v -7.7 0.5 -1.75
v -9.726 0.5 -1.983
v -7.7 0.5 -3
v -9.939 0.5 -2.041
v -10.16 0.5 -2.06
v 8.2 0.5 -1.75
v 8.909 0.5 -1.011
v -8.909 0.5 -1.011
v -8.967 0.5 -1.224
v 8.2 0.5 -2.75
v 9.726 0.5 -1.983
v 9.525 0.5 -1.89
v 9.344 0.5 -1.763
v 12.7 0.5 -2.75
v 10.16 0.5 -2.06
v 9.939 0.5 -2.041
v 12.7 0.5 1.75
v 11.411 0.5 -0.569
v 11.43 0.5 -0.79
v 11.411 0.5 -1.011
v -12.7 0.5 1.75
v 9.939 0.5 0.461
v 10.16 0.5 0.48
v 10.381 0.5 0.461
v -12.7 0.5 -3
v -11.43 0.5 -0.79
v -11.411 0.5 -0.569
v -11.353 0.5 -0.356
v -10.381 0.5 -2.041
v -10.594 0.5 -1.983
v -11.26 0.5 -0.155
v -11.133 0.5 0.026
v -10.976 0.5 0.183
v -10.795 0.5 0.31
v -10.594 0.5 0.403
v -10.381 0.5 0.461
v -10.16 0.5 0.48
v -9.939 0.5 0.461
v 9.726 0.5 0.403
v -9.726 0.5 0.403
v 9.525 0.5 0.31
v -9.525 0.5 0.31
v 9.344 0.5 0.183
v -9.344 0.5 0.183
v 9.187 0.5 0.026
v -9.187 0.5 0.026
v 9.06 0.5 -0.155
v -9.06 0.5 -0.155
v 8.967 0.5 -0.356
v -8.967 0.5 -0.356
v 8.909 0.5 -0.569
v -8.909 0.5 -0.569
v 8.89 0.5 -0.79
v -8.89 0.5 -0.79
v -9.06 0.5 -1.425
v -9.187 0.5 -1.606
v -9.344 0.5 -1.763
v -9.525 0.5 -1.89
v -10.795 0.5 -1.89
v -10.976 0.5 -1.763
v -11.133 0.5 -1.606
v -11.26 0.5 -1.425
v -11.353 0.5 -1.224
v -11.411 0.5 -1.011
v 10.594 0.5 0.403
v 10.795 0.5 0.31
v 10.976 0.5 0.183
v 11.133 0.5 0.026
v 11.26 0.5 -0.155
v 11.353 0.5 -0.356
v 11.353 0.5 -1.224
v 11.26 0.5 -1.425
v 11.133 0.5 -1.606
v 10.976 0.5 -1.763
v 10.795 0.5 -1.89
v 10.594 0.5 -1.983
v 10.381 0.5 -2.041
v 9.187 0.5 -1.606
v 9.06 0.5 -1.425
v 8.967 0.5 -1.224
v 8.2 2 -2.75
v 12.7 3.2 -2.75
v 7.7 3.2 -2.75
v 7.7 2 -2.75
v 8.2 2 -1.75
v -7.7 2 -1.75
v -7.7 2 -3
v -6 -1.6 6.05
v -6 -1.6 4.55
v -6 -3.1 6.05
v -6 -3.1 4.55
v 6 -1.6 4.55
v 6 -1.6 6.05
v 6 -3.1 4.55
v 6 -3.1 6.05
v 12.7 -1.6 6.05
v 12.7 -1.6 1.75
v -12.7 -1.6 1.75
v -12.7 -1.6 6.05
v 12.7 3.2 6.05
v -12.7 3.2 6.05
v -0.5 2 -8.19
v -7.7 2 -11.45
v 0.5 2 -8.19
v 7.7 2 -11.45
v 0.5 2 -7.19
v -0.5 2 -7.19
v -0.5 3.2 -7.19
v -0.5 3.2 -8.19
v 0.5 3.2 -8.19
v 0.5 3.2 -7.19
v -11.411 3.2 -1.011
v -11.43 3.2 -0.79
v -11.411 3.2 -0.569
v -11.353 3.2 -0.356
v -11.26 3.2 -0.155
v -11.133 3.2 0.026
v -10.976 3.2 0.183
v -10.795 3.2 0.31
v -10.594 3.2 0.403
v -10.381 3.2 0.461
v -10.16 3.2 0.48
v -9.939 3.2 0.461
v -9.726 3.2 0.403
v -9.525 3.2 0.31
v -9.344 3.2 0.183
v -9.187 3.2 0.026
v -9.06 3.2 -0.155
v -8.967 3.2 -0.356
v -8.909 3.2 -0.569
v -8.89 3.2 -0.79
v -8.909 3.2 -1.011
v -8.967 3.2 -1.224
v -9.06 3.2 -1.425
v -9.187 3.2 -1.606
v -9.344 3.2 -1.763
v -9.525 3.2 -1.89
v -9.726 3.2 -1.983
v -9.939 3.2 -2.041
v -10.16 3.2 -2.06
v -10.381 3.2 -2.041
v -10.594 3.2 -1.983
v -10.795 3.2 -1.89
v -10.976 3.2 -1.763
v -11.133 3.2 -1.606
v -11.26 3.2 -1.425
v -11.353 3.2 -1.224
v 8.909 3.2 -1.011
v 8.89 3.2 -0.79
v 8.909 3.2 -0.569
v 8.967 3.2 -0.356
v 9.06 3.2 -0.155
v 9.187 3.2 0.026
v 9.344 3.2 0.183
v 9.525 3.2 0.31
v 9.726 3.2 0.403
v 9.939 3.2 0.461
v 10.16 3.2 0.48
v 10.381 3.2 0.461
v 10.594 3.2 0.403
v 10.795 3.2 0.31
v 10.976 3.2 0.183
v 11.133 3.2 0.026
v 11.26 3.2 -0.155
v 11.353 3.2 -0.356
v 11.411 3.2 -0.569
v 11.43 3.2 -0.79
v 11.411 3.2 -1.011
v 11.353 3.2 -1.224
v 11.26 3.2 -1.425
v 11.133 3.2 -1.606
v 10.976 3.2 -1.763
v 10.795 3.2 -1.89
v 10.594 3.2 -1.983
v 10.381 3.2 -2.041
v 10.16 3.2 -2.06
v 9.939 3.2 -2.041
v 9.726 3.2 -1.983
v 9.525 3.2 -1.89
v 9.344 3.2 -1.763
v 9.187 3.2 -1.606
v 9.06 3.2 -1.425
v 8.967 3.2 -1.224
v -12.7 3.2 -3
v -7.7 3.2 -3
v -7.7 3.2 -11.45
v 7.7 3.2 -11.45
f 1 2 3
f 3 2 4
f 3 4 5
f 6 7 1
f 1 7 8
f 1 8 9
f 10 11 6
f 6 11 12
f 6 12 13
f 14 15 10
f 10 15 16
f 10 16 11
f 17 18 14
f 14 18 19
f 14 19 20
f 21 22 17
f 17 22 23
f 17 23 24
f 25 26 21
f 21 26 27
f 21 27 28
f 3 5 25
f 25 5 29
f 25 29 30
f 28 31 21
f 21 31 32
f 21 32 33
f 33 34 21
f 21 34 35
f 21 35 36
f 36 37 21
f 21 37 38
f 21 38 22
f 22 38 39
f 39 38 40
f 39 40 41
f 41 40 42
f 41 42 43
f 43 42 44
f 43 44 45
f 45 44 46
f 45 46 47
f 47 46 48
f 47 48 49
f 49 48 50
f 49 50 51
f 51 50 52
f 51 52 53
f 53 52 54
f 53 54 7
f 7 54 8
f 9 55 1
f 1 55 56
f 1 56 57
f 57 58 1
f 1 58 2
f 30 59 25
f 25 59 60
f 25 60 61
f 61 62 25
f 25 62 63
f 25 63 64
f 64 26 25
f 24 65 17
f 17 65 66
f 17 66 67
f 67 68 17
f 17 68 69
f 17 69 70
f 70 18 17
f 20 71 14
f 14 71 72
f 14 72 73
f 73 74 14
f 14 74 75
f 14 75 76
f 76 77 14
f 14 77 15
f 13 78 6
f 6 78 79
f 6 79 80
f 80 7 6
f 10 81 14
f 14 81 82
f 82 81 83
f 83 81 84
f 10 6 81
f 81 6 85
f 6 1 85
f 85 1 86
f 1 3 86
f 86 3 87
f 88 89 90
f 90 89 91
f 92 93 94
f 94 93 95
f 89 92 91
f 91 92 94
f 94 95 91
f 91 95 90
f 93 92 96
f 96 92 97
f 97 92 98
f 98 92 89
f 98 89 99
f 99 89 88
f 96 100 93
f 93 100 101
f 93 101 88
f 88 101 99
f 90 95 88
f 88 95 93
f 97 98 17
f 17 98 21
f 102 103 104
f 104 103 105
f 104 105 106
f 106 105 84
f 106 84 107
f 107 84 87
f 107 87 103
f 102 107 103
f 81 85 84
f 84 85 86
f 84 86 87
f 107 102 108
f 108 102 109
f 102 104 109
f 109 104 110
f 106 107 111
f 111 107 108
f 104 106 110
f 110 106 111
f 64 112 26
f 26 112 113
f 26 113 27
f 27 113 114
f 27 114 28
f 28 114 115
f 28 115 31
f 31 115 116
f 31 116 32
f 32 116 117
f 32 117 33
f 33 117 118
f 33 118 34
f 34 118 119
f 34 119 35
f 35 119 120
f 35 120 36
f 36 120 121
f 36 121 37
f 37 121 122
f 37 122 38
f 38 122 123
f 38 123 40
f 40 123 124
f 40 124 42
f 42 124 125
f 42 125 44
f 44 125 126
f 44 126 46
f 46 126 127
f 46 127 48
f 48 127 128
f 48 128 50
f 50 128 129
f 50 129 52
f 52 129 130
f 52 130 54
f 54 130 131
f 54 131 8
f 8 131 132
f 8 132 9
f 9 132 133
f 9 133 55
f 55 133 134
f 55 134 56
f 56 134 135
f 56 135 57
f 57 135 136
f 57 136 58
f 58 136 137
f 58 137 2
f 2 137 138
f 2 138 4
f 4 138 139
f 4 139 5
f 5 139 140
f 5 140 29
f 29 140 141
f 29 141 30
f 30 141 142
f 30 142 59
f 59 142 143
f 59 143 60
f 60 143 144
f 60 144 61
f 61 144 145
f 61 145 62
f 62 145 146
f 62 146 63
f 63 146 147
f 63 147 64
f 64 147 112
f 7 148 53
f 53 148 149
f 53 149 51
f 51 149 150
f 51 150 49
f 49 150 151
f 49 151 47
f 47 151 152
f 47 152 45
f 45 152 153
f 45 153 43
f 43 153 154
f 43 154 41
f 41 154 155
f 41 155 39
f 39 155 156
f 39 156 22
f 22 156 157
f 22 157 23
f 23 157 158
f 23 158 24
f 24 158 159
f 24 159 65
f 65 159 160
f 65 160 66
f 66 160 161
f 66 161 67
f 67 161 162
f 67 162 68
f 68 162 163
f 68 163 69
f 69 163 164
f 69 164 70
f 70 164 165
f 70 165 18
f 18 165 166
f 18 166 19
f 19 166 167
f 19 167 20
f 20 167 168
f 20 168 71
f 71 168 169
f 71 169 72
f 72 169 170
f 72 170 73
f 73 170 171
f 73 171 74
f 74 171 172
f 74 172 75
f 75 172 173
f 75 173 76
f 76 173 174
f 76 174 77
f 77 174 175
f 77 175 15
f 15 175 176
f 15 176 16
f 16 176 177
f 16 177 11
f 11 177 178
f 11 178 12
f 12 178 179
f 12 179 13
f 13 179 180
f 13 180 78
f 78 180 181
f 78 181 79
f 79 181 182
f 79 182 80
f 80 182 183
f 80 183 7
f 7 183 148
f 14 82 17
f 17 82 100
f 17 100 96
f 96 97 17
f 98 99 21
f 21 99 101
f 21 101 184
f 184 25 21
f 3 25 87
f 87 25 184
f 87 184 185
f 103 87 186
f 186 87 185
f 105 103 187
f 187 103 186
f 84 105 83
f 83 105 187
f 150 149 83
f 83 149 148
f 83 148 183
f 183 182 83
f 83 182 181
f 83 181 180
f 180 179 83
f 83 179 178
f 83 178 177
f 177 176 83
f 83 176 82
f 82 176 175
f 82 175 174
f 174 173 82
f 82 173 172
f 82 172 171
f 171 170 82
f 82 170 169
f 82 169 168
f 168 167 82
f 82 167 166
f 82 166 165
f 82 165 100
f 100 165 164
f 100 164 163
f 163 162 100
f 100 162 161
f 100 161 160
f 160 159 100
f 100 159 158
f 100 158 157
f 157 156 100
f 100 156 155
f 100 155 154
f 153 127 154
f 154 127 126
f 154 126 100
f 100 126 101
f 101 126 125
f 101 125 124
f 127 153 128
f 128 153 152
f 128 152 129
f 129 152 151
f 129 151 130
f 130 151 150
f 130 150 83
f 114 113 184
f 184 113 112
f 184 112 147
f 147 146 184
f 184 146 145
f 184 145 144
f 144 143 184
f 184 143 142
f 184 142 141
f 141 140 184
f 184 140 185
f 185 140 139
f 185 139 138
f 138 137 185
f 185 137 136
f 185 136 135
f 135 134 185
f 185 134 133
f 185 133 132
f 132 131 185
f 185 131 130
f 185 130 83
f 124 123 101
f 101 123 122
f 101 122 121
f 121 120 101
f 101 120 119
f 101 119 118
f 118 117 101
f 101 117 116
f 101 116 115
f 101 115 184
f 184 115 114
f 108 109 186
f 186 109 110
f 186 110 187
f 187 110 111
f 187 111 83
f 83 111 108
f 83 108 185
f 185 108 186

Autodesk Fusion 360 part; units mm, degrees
sketch "board contact" plane through (0, 0, 0) normal (0, 1, 0) x (1, 0, 0)
  line L0 (12.7, -1.75) -> (-12.7, -1.75)
  line L1 (-12.7, -1.75) -> (-12.7, 1.75)
  line L2 (-12.7, 1.75) -> (12.7, 1.75)
  line L3 (12.7, 1.75) -> (12.7, -1.75)
  line L4 (61.7395, 0) -> (-97.655, 0) construction
  line L5 (0, -60.5274) -> (0, 48.7233) construction
  line L6 (8.2, 2.75) -> (12.7, 2.75)
  line L7 (12.7, 2.75) -> (12.7, 1.75)
  line L8 (12.7, 1.75) -> (8.2, 1.75)
  line L9 (8.2, 1.75) -> (8.2, 2.75)
  line L10 (-12.7, 3) -> (2.45, 3)
  line L11 (2.45, 3) -> (2.45, 1.75)
  line L12 (2.45, 1.75) -> (-12.7, 1.75)
  line L13 (-12.7, 1.75) -> (-12.7, 3)
  circle A0 centre (10.16, 0.79) radius 1.27
  circle A1 centre (-10.16, 0.79) radius 1.27
  line L14 (-10.16, 0.79) -> (10.16, 0.79) construction
  line L15 (2.45, 9.25) -> (-1.95, 9.25)
  line L16 (-1.95, 9.25) -> (-1.95, 3)
  line L17 (-1.95, 3) -> (2.45, 3)
  line L18 (2.45, 3) -> (2.45, 9.25)
  line L19 (0.5, 7.19) -> (-0.5, 7.19)
  line L20 (-0.5, 7.19) -> (-0.5, 8.19)
  line L21 (-0.5, 8.19) -> (0.5, 8.19)
  line L22 (0.5, 8.19) -> (0.5, 7.19)
  line L23 (7.7, 11.45) -> (-7.7, 11.45)
  line L24 (-7.7, 11.45) -> (-7.7, -1.75)
  line L25 (-7.7, -1.75) -> (7.7, -1.75)
  line L26 (7.7, -1.75) -> (7.7, 11.45)
  line L27 (8.2, 2.75) -> (7.7, 2.75)
  line L28 (-0.5, 7.69) -> (0.5, 7.69) construction
  dimension "d1" = 3.5
  dimension "d2" = 25.4
  dimension "d3" = 4.5
  dimension "d4" = 4.5
  dimension "d7" = 4.75
  dimension "d10" = 20.32
  dimension "d11" = 2.54
  dimension "d12" = 2.54
  dimension "d13" = 10.25
  dimension "d14" = 10.75
  dimension "d15" = 11
  dimension "d17" = 1
  dimension "d18" = 1
  dimension "d20" = 5
  dimension "d21" = 5
  dimension "d22" = 13.2
  dimension "d39" = 9.44
extrude "Extrude1" add sketch "board contact" along normal blind 3.2 contours L0 L2 L3 L8 A0 L26 | L0 L2 L12 L24 L25 L26 | L2 L6 L7 L8 L9 A0 | L0 L1 L2 L12 A1 L24 | L2 L9 L26 L27 | L2 L10 L11 L15 L16 L18 L23 L24 L26 | L2 L10 L11 L12 L17 L24 | L2 L10 L12 L13 A1 L24 | L10 L15 L16 L17 L18
extrude "Extrude2" cut sketch "board contact" along normal blind 2 contours L2 L9 L26 L27 | L2 L10 L11 L15 L16 L18 L23 L24 L26 | L2 L10 L11 L12 L17 L24 | L10 L15 L16 L17 L18
sketch "vertical extension" plane through (0, 0, 0) normal (0, -1, 0) x (1, 0, 0)
  line L0 (-12.7, -3) -> (-7.7, -3)
  line L1 (-7.7, -1.75) -> (8.2, -1.75)
  line L2 (8.2, -1.75) -> (8.2, -2.75)
  line L3 (8.2, -2.75) -> (12.7, -2.75)
  line L4 (12.7, -2.75) -> (12.7, 1.75)
  line L5 (12.7, 1.75) -> (-12.7, 1.75)
  line L6 (-12.7, 1.75) -> (-12.7, -3)
  circle A0 centre (10.16, -0.79) radius 1.27
  circle A1 centre (-10.16, -0.79) radius 1.27
  line L7 (-6, 6.05) -> (6, 6.05)
  line L8 (6, 6.05) -> (6, 4.55)
  line L9 (6, 4.55) -> (-6, 4.55)
  line L10 (-6, 4.55) -> (-6, 6.05)
  line L11 (0, 1.75) -> (0, -6.45) construction
  line L12 (-12.7, 6.05) -> (12.7, 6.05)
  line L13 (12.7, 6.05) -> (12.7, 1.75)
  line L14 (12.7, 1.75) -> (-12.7, 1.75)
  line L15 (-12.7, 1.75) -> (-12.7, 6.05)
  line L16 (-7.7, -3) -> (-7.7, -1.75)
  dimension "d25" = 12
  dimension "d26" = 1.5
  dimension "d29" = 4.3
extrude "Extrude4" add sketch "vertical extension" along normal blind -3.2 and the other way blind -1.6 contours L5 L8 L9 L10 L12 L13 L14 L15 | L7 L8 L9 L10 L12
extrude "Extrude3" add sketch "vertical extension" along normal blind 3.1 contours L7 L8 L9 L10 L12
extrude "Extrude6" cut 1 faces at (-2.5667, 0, -0.6331) along direction (0, 1, 0) blind 0.5
